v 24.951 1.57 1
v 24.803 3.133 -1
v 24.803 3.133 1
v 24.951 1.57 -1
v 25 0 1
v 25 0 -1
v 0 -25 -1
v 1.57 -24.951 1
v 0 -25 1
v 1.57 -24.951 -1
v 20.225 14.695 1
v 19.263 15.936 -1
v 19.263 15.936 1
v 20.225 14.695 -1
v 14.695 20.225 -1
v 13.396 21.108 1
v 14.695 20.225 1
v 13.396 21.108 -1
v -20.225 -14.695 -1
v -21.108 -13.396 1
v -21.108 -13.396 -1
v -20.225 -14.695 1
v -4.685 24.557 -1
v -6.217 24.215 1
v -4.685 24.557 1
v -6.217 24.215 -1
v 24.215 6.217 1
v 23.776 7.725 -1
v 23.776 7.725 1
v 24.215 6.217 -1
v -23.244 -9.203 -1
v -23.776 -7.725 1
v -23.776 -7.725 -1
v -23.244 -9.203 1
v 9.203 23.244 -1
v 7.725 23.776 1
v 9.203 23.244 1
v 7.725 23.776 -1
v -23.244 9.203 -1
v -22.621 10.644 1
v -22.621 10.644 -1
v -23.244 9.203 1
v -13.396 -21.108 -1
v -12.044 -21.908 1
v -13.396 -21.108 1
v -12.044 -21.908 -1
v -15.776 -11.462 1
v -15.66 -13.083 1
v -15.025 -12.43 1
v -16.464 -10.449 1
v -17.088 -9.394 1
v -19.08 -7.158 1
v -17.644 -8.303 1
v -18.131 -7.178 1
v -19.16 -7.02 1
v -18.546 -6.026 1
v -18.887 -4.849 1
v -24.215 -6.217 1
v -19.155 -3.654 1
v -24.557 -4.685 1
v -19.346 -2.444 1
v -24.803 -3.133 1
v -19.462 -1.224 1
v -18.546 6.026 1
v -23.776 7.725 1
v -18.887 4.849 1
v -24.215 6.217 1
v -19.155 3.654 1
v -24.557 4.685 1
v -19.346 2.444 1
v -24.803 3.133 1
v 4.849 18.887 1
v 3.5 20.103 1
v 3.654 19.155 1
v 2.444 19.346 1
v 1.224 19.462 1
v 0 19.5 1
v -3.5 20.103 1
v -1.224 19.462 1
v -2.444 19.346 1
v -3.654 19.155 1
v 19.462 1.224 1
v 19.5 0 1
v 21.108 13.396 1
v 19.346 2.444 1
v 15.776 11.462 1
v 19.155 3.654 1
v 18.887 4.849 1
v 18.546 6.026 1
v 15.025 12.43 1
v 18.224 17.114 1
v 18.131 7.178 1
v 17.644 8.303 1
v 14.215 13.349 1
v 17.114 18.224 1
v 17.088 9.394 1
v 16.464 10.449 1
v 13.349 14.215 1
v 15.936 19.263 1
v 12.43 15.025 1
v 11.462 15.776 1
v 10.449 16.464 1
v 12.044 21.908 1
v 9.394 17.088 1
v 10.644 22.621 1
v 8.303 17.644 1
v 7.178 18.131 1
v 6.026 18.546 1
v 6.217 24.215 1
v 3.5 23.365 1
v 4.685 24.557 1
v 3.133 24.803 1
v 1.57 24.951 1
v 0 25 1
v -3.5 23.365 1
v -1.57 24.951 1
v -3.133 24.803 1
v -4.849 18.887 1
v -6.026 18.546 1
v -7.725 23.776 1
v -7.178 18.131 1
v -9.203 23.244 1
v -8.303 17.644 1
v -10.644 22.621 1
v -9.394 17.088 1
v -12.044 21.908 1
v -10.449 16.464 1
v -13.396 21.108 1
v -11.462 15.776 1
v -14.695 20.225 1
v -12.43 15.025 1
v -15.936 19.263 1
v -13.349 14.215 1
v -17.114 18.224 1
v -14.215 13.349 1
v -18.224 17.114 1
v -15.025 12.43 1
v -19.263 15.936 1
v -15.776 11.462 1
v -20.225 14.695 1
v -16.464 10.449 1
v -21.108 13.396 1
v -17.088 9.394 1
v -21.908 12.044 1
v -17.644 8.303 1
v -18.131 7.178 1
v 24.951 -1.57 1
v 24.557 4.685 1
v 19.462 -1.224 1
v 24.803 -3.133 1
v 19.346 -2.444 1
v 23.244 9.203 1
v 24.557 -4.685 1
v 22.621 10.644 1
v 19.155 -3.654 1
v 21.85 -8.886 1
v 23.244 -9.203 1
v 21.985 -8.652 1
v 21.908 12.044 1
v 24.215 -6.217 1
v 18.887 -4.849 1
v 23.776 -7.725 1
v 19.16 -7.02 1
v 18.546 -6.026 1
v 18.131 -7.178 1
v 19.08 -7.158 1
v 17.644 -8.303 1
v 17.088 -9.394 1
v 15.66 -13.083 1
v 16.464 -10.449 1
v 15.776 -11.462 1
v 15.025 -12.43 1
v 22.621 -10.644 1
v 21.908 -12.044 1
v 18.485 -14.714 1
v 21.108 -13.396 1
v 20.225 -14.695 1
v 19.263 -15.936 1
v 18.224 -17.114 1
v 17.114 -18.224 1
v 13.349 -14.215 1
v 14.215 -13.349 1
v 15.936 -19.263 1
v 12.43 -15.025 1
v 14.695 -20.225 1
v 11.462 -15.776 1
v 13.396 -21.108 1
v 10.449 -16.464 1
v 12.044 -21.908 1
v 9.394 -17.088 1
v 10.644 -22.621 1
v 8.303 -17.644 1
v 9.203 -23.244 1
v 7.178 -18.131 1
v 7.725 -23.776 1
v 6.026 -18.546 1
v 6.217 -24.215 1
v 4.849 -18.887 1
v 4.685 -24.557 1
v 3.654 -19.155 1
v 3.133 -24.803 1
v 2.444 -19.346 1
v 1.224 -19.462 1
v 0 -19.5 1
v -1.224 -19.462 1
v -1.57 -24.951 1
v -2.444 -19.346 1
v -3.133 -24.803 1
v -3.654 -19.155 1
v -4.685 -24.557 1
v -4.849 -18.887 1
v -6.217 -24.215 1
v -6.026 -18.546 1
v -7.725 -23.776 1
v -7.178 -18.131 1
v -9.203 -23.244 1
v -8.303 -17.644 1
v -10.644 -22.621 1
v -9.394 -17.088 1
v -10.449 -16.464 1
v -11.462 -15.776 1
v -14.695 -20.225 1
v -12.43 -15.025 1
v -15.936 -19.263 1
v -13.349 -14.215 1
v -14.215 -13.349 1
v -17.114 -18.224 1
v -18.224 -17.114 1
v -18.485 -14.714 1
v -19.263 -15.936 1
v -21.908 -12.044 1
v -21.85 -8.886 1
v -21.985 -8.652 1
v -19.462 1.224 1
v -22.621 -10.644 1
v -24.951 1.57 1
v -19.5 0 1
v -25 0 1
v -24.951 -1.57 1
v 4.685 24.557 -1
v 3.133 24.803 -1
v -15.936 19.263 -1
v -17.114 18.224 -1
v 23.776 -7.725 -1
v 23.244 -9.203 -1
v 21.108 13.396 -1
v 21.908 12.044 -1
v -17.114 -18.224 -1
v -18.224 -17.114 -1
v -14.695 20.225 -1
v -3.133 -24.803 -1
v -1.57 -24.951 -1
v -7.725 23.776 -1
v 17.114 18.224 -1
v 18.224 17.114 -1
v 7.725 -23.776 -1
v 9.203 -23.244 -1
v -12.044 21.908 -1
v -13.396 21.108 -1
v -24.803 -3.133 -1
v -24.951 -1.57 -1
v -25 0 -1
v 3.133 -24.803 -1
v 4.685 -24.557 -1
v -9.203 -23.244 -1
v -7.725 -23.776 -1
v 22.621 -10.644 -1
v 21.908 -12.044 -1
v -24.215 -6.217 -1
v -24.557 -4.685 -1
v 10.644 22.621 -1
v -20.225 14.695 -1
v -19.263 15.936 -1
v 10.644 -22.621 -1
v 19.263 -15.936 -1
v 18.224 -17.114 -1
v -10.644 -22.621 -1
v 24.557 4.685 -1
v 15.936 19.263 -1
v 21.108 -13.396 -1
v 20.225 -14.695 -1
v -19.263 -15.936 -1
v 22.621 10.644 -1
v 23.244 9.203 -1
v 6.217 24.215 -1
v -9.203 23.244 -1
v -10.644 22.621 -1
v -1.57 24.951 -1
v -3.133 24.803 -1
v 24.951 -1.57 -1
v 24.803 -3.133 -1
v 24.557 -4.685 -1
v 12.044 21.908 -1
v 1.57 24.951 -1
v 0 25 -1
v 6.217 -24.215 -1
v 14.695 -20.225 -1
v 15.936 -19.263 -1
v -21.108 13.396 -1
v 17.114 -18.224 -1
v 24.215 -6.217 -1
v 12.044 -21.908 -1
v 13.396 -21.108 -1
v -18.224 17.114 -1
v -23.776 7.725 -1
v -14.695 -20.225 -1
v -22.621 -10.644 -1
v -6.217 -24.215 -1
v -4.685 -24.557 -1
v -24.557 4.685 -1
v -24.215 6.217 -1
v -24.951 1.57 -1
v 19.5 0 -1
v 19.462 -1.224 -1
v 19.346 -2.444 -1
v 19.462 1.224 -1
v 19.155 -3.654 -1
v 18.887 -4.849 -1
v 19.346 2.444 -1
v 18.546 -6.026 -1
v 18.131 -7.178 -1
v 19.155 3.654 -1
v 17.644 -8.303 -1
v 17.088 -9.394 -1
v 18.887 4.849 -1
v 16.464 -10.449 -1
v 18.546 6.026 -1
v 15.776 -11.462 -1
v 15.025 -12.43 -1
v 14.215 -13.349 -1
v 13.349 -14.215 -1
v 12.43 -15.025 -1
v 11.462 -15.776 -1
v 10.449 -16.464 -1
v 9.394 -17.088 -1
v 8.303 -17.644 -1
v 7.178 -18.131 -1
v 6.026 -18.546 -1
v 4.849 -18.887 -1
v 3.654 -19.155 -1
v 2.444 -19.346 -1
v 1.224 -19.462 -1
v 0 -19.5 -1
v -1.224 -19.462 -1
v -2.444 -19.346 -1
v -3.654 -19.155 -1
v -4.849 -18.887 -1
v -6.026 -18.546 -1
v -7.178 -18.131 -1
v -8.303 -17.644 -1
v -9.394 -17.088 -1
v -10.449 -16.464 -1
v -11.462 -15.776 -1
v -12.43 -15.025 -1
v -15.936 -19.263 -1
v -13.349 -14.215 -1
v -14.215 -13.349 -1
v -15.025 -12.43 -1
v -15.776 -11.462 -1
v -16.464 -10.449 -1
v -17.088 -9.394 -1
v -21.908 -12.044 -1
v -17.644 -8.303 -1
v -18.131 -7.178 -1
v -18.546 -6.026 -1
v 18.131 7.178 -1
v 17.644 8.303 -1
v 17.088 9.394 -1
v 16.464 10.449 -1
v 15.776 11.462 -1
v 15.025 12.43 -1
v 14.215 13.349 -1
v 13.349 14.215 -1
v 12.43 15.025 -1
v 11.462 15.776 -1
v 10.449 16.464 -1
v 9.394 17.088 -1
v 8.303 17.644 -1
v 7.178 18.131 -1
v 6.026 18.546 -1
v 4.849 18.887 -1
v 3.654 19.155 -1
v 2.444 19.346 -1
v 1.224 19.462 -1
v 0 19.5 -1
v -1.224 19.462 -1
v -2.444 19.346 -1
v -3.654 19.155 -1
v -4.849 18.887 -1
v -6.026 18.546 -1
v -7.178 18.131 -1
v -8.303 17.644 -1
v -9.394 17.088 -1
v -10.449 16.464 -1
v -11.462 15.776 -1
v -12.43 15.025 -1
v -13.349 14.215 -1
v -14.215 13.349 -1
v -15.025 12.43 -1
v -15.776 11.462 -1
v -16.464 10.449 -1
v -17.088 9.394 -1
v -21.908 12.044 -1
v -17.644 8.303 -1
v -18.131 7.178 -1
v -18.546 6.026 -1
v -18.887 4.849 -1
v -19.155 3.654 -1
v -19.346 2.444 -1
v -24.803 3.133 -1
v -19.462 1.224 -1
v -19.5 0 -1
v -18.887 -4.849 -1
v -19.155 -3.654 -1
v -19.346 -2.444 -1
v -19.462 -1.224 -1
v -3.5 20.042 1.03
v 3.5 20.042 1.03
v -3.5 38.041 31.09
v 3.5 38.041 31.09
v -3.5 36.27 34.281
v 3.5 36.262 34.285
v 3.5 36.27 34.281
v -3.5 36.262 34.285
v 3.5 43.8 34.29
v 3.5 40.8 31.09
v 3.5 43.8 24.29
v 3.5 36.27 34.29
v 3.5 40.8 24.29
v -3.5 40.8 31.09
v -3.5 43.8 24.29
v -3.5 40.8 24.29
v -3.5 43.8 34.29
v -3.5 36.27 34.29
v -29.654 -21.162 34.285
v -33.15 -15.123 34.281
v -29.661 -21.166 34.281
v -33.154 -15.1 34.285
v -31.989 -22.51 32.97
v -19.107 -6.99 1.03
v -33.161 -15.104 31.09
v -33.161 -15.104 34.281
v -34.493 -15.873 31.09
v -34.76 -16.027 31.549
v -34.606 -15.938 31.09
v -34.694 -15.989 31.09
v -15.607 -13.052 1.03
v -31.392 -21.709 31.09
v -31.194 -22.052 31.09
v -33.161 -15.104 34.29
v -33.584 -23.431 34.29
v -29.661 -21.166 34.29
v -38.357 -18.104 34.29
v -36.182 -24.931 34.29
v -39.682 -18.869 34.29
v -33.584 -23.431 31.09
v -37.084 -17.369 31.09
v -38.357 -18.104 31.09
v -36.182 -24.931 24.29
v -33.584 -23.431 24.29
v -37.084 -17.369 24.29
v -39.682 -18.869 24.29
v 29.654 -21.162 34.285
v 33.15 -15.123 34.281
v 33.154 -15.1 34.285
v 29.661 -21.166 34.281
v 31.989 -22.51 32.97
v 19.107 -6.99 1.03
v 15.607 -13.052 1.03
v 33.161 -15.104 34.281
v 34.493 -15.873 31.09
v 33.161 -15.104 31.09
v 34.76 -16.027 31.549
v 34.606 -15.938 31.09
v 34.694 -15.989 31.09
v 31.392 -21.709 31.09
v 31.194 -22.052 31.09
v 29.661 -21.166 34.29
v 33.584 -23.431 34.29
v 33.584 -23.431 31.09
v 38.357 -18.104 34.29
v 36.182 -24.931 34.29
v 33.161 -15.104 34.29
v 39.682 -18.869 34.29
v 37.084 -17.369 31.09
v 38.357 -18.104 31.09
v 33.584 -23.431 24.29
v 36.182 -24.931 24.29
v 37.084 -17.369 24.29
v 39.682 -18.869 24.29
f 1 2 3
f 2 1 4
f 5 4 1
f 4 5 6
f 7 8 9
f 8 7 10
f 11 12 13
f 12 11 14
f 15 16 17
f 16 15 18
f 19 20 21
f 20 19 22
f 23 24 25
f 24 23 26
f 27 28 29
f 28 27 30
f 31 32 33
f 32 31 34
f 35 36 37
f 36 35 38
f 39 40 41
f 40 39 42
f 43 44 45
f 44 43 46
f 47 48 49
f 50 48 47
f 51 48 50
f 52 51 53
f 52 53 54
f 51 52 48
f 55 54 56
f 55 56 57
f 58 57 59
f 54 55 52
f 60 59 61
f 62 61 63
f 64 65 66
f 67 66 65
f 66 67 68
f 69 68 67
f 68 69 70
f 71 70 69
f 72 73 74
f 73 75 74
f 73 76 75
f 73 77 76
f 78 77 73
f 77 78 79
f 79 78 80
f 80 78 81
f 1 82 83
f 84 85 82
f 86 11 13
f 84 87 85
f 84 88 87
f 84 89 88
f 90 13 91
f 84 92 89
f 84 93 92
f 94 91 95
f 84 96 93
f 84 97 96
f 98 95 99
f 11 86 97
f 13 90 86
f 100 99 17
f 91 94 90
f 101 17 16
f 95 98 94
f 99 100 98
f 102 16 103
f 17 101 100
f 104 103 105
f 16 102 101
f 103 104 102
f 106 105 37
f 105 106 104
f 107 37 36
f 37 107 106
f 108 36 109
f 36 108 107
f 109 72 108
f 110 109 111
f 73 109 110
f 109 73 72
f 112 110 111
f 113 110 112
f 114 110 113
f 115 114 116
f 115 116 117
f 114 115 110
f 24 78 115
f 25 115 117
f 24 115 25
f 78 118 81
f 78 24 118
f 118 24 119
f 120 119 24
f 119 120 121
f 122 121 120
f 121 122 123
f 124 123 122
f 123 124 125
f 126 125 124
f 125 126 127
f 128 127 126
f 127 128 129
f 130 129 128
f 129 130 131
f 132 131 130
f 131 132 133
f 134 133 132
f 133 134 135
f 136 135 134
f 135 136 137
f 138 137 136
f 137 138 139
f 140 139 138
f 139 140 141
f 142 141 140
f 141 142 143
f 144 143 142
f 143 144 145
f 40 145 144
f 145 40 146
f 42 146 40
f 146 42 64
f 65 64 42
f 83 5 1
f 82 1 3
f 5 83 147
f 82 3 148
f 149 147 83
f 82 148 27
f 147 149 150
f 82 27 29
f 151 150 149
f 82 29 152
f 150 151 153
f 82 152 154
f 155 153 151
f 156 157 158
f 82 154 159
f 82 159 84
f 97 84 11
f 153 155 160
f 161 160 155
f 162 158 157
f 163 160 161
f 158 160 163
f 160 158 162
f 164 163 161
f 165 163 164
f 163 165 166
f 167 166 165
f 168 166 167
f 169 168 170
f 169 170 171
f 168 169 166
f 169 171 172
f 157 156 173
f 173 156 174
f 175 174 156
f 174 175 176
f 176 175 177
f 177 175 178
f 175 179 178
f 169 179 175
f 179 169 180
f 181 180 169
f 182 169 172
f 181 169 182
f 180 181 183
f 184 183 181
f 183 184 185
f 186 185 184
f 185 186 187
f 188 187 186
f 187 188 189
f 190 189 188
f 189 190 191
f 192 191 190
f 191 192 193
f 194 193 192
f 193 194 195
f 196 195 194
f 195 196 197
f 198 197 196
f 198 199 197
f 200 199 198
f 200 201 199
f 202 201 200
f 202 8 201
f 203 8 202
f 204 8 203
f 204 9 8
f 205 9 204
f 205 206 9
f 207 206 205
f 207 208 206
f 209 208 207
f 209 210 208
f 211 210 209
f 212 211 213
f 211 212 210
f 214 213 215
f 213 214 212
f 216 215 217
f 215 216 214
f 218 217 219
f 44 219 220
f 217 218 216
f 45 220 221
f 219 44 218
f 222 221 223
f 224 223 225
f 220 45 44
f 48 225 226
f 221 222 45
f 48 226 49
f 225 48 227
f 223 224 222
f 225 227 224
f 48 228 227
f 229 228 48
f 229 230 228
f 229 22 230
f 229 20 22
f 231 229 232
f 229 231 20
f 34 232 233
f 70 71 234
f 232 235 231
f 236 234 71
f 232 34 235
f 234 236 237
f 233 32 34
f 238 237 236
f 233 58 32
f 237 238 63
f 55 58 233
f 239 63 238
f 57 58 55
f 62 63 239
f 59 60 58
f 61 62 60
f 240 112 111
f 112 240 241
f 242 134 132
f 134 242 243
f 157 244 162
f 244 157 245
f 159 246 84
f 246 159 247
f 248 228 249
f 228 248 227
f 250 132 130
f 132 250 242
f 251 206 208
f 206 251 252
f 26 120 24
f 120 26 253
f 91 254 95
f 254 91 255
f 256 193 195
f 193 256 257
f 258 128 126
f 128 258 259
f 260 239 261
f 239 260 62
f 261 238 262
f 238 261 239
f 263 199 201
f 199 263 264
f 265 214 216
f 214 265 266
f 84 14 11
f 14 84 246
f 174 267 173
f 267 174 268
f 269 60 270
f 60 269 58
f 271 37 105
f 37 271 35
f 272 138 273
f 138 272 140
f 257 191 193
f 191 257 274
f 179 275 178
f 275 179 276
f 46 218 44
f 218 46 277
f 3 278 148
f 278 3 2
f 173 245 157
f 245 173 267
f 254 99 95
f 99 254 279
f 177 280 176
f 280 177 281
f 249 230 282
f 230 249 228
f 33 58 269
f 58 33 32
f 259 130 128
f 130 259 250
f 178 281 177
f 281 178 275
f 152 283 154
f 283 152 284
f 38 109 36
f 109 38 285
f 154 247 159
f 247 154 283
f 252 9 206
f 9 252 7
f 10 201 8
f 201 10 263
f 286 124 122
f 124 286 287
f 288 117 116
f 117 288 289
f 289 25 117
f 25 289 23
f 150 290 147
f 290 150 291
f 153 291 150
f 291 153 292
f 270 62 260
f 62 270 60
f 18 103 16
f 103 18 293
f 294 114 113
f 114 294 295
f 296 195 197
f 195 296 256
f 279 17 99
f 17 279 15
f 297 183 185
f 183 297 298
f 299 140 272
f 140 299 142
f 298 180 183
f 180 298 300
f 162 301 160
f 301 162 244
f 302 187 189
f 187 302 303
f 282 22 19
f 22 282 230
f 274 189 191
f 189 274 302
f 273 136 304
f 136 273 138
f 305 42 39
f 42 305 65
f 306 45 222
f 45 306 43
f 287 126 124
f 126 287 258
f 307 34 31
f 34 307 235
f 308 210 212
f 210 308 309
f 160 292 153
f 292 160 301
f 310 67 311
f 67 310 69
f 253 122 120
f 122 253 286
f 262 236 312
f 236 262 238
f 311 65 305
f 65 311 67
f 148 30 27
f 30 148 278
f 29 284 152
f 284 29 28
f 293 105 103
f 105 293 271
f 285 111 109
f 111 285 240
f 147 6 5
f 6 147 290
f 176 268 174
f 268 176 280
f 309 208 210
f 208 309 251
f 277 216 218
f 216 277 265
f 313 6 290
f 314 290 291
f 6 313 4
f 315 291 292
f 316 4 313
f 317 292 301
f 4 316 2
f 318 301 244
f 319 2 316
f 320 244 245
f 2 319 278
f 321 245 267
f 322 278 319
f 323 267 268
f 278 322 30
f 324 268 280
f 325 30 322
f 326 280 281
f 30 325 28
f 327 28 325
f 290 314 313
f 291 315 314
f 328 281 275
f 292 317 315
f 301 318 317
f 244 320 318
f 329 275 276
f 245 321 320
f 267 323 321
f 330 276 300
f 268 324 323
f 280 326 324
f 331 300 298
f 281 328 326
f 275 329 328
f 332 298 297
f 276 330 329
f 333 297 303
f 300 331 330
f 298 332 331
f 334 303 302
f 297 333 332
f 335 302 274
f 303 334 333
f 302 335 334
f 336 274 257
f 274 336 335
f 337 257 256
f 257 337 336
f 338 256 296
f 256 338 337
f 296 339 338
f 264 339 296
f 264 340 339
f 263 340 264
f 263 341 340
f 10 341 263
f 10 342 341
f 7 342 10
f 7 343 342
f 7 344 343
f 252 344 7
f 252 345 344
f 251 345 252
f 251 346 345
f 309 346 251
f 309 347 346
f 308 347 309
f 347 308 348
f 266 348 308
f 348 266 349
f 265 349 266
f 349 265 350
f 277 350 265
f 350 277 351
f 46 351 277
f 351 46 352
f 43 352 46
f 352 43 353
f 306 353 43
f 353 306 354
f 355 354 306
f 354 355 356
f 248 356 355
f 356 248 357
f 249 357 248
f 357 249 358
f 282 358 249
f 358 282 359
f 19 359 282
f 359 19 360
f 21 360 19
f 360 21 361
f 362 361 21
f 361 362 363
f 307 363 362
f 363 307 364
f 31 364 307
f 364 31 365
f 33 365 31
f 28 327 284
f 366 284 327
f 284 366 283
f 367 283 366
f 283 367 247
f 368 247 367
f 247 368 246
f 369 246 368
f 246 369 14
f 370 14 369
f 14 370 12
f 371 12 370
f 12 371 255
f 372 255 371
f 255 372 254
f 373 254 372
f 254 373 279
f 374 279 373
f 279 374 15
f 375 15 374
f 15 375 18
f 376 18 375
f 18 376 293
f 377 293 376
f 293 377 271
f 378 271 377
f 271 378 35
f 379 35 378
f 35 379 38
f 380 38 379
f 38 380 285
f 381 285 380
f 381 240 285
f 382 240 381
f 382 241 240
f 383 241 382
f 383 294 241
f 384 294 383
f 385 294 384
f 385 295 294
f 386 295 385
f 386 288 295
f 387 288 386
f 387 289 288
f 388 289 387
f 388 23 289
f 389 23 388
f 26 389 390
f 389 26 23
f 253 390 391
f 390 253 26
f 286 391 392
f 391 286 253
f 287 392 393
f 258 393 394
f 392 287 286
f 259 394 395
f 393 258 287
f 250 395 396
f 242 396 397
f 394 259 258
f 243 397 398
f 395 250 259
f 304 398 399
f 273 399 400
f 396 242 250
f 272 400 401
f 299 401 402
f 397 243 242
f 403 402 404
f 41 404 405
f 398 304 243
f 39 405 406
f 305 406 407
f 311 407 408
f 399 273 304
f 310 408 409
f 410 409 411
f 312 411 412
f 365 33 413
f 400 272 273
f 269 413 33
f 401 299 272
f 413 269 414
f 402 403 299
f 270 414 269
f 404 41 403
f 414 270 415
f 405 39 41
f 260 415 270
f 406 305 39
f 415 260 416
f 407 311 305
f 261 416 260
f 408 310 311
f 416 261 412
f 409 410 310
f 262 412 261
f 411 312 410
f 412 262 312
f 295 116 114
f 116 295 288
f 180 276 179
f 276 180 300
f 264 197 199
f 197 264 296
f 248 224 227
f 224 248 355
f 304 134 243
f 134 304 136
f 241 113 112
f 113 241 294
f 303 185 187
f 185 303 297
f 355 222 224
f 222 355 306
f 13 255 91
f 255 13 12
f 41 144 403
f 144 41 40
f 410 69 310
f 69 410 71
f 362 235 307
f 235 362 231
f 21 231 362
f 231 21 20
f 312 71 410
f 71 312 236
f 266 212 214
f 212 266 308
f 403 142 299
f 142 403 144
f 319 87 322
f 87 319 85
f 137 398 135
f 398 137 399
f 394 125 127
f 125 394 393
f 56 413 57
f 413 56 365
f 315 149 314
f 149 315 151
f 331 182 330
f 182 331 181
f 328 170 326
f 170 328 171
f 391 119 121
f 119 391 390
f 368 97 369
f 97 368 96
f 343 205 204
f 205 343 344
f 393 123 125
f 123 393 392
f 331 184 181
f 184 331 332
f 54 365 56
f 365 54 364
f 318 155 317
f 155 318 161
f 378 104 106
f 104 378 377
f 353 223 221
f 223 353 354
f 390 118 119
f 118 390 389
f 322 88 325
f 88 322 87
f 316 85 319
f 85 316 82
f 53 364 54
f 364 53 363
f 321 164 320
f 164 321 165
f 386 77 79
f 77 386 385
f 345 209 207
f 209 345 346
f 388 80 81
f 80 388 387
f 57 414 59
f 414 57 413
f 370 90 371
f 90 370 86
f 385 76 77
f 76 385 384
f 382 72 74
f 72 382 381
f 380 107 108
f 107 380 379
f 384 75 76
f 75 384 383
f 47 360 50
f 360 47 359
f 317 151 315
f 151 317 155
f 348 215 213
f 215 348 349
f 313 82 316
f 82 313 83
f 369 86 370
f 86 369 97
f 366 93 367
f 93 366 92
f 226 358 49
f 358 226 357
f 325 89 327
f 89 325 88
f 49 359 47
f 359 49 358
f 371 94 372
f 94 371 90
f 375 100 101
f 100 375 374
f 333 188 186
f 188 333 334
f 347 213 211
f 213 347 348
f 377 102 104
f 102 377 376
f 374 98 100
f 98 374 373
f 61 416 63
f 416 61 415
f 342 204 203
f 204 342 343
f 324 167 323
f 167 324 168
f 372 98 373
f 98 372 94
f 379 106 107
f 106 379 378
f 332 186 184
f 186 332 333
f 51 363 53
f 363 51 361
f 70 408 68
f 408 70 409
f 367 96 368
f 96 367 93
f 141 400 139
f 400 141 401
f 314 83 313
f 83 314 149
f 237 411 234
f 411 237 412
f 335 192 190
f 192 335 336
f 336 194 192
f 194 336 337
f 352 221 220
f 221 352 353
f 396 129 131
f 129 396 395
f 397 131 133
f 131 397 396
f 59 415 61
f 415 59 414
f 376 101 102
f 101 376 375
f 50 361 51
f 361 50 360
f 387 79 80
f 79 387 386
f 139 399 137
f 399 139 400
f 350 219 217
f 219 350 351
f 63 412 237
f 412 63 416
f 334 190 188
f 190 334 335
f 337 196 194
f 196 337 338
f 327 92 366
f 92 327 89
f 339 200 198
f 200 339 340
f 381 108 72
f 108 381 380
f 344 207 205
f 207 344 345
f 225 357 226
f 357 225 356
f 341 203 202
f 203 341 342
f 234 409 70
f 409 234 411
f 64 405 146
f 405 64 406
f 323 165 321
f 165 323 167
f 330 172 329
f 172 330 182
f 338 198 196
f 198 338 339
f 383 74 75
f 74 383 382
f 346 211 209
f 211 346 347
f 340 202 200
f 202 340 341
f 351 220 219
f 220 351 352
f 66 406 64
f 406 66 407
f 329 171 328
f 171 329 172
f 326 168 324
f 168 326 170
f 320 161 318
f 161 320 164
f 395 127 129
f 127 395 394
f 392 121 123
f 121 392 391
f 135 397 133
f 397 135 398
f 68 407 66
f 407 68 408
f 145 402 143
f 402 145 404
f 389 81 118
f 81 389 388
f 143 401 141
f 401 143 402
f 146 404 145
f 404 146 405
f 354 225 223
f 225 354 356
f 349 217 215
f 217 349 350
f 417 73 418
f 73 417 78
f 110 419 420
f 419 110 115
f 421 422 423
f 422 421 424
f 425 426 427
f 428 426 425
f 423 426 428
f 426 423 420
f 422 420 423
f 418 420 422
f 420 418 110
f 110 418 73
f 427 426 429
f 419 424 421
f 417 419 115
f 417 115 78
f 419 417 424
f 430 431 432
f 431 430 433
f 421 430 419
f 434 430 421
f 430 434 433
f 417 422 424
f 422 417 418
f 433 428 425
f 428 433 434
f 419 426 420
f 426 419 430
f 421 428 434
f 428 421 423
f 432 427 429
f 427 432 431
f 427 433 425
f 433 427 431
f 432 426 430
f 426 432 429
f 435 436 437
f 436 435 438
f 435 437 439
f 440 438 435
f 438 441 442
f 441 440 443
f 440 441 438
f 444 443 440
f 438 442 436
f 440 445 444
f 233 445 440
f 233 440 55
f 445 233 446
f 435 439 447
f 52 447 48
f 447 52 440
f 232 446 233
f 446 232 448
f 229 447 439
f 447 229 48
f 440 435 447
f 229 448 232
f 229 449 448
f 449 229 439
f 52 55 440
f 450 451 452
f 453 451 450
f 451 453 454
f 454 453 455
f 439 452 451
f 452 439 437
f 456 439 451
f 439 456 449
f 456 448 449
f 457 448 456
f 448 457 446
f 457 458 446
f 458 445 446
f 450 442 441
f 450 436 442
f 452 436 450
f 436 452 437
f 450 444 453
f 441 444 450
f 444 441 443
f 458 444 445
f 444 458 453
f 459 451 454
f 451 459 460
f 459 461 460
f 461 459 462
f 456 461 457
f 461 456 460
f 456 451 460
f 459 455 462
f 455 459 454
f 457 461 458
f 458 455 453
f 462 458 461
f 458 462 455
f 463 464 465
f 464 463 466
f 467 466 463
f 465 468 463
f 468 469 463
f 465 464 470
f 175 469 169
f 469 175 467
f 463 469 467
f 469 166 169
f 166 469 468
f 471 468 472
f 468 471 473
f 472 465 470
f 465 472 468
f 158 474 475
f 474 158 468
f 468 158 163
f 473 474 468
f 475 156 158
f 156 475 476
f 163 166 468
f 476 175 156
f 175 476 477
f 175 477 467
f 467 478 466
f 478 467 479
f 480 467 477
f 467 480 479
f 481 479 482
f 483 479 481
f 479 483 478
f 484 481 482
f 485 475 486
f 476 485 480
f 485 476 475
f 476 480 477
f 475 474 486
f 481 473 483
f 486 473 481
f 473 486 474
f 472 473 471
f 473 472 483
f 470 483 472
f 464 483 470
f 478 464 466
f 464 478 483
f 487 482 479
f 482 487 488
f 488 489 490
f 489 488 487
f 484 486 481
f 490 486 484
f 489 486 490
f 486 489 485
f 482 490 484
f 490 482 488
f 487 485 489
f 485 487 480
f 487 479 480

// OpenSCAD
$fn=100;
//translate([12.1,3.35,0])


difference(){
	rotate([0,0,0])
	cylinder(r=25,h=2, center = true);
	cylinder(r=19.5,h=4, center = true);
}

//Arm1
translate([0,29.5,17])
rotate([-26,0,0])
cube([7,3,37], center = true);
translate([0,39.27,32.69])
cube([7,6,3.2], center = true);
translate([0,42.3,29.29])
cube([7,3,10], center = true);

//Arm2
rotate([0,0,120])
translate([0,29.5,17])
rotate([-26,0,0])
cube([7,3,37], center = true);
rotate([0,0,120])
translate([0,39.27,32.69])
cube([7,6,3.2], center = true);
rotate([0,0,120])
translate([0,42.3,29.29])
cube([7,3,10], center = true);

//Arm3
rotate([0,0,240])
translate([0,29.5,17])
rotate([-26,0,0])
cube([7,3,37], center = true);
rotate([0,0,240])
translate([0,39.27,32.69])
cube([7,6,3.2], center = true);
rotate([0,0,240])
translate([0,42.3,29.29])
cube([7,3,10], center = true);

//Glass
/*
translate([0,0,30])
difference(){
	cylinder(r=40.6,h=2, center = true);
	cylinder(r=39,h=4, center = true);
}
*/
